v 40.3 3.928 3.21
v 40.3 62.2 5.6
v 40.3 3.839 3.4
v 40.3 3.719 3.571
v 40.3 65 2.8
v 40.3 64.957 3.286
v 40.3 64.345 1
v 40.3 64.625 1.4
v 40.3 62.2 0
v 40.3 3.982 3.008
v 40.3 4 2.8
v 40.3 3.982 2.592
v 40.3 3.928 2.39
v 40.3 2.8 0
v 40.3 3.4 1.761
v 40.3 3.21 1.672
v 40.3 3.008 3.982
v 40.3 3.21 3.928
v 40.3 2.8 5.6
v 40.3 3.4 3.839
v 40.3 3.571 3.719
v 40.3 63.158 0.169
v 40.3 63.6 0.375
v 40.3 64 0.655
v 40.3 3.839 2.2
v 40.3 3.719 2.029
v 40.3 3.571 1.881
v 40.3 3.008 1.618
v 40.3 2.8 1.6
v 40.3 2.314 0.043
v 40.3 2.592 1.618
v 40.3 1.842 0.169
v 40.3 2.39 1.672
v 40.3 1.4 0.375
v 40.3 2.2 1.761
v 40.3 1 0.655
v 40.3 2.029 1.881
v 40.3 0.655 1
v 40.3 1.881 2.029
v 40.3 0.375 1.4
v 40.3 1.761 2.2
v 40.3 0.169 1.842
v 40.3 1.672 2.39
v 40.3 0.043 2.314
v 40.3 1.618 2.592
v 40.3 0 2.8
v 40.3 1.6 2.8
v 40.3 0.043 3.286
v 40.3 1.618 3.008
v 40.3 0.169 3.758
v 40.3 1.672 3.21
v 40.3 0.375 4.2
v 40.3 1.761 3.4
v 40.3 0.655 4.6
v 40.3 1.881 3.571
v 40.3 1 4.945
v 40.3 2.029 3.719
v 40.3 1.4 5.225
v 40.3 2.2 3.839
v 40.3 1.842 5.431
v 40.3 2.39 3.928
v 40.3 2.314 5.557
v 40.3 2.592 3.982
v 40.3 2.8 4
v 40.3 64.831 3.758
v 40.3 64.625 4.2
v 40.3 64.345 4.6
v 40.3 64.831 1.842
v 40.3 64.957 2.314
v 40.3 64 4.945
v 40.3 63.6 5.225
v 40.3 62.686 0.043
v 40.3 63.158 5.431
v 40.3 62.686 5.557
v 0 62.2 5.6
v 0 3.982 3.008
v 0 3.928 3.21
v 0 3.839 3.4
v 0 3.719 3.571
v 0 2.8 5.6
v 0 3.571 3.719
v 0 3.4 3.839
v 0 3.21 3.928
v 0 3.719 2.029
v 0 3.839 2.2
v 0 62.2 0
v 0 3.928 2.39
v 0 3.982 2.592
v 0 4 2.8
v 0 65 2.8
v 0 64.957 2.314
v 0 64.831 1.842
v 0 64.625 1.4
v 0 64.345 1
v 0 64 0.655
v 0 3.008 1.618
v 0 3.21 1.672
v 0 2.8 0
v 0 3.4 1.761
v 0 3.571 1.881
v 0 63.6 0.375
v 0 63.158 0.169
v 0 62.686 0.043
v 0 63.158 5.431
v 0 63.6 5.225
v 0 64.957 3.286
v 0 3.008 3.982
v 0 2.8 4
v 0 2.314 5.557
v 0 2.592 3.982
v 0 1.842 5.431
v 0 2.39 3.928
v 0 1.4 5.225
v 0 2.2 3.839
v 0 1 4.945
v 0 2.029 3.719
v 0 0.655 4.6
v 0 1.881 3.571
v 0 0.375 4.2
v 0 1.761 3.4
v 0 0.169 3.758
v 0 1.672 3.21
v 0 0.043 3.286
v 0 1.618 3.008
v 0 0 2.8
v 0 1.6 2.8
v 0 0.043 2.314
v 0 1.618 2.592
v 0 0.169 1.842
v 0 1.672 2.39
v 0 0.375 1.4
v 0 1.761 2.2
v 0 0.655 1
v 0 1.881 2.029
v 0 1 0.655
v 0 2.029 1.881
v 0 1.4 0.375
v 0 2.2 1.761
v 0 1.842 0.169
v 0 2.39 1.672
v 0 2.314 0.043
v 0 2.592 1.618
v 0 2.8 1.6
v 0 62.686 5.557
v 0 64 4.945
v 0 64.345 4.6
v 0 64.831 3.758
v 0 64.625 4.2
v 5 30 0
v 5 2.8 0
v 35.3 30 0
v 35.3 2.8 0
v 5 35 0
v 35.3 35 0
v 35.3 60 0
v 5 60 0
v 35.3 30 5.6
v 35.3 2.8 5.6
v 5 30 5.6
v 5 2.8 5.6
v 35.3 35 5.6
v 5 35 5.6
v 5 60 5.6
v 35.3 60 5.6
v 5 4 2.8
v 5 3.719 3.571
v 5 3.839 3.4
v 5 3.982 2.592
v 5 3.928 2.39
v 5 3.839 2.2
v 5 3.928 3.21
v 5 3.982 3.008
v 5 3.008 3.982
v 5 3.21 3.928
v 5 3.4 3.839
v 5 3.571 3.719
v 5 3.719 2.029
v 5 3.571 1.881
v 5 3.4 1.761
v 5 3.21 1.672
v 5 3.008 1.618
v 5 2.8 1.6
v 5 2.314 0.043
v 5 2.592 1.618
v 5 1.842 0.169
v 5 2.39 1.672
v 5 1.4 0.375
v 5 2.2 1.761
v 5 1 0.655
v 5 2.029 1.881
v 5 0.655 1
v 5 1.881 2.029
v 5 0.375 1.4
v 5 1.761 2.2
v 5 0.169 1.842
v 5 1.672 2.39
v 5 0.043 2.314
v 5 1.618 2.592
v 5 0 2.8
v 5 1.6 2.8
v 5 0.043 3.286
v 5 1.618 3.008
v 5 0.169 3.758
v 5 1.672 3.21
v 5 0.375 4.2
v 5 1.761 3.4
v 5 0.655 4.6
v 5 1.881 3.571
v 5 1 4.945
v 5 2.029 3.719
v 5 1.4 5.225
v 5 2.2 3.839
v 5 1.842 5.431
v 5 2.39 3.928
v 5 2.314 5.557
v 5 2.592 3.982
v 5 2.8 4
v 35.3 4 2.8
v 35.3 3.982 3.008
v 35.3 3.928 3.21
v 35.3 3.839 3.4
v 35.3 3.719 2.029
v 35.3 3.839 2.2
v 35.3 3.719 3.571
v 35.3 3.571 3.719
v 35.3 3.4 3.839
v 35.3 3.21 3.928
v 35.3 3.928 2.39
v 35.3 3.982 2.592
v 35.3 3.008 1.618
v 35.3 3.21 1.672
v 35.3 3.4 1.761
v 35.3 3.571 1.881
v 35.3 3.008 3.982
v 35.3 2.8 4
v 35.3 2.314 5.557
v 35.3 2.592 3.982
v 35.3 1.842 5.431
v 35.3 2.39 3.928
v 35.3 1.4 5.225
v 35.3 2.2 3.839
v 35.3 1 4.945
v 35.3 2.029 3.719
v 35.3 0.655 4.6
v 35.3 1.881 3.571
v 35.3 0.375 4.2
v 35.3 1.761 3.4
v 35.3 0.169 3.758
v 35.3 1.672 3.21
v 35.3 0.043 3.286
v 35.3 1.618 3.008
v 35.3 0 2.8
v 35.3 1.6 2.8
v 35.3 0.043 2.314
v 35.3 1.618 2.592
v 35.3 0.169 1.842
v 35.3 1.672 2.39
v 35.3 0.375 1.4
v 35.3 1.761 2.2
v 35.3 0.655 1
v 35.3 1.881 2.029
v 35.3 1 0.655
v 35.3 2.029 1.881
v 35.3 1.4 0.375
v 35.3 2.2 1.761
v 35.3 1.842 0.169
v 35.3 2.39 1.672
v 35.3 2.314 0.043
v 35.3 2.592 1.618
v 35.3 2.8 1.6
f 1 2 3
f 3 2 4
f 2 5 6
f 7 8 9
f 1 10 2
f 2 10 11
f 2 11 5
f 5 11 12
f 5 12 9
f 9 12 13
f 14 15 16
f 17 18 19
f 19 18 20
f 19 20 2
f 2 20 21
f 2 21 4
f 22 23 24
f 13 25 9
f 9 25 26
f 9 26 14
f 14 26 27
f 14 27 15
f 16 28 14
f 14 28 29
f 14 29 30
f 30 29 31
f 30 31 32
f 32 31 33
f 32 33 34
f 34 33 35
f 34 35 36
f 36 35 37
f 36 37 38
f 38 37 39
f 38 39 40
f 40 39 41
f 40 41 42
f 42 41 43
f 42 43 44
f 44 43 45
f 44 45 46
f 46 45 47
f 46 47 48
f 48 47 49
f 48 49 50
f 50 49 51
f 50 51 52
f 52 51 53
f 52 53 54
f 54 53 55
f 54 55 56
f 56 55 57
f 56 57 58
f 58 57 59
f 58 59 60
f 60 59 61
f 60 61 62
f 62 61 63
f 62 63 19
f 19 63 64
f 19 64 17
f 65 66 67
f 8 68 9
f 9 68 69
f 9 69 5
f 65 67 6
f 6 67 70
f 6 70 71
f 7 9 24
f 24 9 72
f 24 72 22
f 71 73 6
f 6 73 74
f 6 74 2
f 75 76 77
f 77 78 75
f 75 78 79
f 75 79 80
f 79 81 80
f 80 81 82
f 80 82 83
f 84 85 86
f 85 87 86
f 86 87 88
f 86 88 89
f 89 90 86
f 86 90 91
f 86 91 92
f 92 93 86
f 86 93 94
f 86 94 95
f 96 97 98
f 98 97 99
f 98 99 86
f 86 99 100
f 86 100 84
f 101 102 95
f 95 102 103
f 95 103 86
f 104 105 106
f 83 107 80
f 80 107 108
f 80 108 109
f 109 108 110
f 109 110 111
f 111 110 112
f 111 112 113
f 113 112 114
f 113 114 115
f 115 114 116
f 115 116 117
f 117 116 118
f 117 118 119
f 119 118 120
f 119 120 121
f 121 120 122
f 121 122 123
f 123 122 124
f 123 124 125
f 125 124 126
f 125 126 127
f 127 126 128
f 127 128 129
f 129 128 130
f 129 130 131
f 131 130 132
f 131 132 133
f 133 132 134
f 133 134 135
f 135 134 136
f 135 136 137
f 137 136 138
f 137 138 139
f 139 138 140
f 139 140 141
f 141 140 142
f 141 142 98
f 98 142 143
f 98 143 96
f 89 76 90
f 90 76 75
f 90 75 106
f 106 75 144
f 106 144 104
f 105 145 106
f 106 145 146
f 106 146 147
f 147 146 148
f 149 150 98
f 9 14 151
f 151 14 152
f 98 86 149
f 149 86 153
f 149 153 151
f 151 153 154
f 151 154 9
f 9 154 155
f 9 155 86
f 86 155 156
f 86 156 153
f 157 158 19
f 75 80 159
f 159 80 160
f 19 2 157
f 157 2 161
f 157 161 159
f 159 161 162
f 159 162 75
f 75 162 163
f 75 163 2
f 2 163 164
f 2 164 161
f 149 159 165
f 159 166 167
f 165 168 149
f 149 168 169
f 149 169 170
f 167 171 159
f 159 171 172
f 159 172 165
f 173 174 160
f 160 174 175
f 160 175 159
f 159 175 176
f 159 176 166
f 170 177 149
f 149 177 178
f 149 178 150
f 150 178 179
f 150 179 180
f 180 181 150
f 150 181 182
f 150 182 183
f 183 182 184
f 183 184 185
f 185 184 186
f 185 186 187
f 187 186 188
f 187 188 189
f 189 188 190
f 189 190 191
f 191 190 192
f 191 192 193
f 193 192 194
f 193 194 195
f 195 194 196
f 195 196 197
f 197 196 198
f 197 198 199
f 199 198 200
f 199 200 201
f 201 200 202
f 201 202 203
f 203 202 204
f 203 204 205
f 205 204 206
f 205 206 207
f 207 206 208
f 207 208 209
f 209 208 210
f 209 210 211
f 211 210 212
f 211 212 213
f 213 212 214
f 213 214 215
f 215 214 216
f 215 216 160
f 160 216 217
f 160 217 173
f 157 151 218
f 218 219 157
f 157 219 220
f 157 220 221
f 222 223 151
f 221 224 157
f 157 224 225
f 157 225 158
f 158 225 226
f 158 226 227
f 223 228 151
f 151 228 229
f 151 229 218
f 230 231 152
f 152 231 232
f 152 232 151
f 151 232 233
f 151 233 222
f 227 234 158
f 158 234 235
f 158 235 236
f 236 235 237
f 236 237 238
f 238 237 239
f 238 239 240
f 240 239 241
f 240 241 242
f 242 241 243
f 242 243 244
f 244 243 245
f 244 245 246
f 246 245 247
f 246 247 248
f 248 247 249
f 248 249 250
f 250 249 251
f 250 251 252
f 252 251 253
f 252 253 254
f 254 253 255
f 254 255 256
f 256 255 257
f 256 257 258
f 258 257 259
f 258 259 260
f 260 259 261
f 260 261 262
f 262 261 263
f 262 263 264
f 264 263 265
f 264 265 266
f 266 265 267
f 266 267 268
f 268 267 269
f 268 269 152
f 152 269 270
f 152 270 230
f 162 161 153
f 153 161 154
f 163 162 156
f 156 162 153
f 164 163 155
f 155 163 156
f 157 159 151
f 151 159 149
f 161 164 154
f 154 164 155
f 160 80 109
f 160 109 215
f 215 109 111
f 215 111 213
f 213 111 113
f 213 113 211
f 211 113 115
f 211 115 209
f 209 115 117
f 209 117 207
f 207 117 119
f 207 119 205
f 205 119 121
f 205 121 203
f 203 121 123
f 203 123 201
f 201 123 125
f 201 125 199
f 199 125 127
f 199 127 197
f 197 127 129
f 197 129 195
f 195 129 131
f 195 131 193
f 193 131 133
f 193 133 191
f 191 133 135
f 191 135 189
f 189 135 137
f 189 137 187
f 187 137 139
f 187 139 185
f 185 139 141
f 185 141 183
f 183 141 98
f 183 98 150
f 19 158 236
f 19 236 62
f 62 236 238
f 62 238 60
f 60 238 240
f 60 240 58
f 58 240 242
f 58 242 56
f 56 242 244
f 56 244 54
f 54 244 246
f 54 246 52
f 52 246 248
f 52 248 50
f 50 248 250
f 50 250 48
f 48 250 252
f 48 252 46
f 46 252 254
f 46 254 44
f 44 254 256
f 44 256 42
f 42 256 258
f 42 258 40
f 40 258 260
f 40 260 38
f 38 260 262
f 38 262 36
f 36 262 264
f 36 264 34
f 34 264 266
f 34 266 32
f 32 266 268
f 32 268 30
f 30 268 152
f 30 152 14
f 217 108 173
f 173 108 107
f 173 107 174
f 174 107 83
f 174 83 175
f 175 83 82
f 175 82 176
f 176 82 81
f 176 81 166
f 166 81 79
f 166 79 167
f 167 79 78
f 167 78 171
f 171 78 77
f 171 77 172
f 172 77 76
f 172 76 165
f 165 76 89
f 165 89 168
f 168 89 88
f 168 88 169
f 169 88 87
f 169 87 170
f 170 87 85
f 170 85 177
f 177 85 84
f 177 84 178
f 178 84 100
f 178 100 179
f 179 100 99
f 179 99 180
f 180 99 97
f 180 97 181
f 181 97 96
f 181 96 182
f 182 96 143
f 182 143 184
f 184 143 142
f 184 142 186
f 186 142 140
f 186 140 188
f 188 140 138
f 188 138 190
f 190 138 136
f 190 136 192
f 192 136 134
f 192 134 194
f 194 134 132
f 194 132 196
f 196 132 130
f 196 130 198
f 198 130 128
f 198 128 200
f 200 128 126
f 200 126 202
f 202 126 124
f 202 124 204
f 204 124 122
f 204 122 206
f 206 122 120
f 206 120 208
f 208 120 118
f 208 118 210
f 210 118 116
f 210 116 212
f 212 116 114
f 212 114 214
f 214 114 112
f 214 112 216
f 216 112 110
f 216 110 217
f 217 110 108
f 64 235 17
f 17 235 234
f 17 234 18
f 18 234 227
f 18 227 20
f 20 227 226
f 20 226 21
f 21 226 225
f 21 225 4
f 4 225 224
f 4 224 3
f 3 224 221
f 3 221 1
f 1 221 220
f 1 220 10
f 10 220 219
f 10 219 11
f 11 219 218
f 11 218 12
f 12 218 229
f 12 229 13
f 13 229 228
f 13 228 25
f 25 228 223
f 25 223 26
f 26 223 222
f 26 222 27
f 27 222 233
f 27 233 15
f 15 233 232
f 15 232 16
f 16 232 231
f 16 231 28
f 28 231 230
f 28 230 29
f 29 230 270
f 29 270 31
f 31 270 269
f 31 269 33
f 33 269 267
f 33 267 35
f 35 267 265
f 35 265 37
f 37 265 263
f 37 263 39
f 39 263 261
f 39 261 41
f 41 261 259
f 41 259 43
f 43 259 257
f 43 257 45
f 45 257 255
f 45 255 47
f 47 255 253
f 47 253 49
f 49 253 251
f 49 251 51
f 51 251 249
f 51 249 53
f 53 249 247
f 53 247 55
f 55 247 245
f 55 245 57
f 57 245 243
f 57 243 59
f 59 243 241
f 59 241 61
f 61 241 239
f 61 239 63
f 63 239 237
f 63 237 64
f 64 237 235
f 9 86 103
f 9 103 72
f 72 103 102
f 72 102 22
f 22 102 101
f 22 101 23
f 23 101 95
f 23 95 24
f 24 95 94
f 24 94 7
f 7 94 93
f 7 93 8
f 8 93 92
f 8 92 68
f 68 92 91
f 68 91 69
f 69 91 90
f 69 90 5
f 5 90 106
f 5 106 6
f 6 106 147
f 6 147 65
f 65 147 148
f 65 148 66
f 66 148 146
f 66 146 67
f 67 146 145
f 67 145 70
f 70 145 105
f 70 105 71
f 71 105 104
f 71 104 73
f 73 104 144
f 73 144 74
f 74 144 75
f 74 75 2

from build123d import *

# Parameters (mm, degrees)
SKICA1_W                 = 30.3
SKICA1_H                 = 5
P_IDAT_VYSUNUT_M1_DEPTH  = 5.6
SKICA2_R                 = 1.2
ODEBRAT_VYSUNUT_M1_DEPTH = 77.684092223
ODEBRAT_VYSUNUT_M3_DEPTH = 77.684092223


with BuildPart() as part:
    # Skica1 → Přidat vysunutím1 (new body)
    with BuildSketch(Plane.XY):
        Polygon((5, 0), (0, 0), (0, 65), (40.3, 65), (40.3, 0), (35.3, 0), (35.3, 60), (5, 60), align=None)
        with Locations((20.15, 32.5)):
            Rectangle(SKICA1_W, SKICA1_H)
    extrude(amount=P_IDAT_VYSUNUT_M1_DEPTH)

    # Skica2 → Odebrat vysunutím1 (cut, through all)
    with BuildSketch(Plane.ZY):
        with BuildLine():
            Line((5.6, 0), (5.6, 2.8))
            ThreePointArc((5.6, 2.8), (4.779898987, 0.820101013), (2.8, 0))
            Line((2.8, 0), (5.6, 0))
        make_face()
        with BuildLine():
            ThreePointArc((2.8, 0), (0.820101013, 0.820101013), (0, 2.8))
            Line((0, 2.8), (0, 0))
            Line((0, 0), (2.8, 0))
        make_face()
        with Locations((2.8, 2.8)):
            Circle(SKICA2_R)
    extrude(amount=-ODEBRAT_VYSUNUT_M1_DEPTH, mode=Mode.SUBTRACT)

    # Skica3 → Odebrat vysunutím3 (cut, through all)
    with BuildSketch(Plane.ZY):
        with BuildLine():
            Line((0, 65), (0, 62.2))
            ThreePointArc((0, 62.2), (0.820101013, 64.179898987), (2.8, 65))
            Line((2.8, 65), (0, 65))
        make_face()
        with BuildLine():
            ThreePointArc((2.8, 65), (4.779898987, 64.179898987), (5.6, 62.2))
            Line((5.6, 62.2), (5.6, 65))
            Line((5.6, 65), (2.8, 65))
        make_face()
    extrude(amount=-ODEBRAT_VYSUNUT_M3_DEPTH, mode=Mode.SUBTRACT)


solid = part.part
